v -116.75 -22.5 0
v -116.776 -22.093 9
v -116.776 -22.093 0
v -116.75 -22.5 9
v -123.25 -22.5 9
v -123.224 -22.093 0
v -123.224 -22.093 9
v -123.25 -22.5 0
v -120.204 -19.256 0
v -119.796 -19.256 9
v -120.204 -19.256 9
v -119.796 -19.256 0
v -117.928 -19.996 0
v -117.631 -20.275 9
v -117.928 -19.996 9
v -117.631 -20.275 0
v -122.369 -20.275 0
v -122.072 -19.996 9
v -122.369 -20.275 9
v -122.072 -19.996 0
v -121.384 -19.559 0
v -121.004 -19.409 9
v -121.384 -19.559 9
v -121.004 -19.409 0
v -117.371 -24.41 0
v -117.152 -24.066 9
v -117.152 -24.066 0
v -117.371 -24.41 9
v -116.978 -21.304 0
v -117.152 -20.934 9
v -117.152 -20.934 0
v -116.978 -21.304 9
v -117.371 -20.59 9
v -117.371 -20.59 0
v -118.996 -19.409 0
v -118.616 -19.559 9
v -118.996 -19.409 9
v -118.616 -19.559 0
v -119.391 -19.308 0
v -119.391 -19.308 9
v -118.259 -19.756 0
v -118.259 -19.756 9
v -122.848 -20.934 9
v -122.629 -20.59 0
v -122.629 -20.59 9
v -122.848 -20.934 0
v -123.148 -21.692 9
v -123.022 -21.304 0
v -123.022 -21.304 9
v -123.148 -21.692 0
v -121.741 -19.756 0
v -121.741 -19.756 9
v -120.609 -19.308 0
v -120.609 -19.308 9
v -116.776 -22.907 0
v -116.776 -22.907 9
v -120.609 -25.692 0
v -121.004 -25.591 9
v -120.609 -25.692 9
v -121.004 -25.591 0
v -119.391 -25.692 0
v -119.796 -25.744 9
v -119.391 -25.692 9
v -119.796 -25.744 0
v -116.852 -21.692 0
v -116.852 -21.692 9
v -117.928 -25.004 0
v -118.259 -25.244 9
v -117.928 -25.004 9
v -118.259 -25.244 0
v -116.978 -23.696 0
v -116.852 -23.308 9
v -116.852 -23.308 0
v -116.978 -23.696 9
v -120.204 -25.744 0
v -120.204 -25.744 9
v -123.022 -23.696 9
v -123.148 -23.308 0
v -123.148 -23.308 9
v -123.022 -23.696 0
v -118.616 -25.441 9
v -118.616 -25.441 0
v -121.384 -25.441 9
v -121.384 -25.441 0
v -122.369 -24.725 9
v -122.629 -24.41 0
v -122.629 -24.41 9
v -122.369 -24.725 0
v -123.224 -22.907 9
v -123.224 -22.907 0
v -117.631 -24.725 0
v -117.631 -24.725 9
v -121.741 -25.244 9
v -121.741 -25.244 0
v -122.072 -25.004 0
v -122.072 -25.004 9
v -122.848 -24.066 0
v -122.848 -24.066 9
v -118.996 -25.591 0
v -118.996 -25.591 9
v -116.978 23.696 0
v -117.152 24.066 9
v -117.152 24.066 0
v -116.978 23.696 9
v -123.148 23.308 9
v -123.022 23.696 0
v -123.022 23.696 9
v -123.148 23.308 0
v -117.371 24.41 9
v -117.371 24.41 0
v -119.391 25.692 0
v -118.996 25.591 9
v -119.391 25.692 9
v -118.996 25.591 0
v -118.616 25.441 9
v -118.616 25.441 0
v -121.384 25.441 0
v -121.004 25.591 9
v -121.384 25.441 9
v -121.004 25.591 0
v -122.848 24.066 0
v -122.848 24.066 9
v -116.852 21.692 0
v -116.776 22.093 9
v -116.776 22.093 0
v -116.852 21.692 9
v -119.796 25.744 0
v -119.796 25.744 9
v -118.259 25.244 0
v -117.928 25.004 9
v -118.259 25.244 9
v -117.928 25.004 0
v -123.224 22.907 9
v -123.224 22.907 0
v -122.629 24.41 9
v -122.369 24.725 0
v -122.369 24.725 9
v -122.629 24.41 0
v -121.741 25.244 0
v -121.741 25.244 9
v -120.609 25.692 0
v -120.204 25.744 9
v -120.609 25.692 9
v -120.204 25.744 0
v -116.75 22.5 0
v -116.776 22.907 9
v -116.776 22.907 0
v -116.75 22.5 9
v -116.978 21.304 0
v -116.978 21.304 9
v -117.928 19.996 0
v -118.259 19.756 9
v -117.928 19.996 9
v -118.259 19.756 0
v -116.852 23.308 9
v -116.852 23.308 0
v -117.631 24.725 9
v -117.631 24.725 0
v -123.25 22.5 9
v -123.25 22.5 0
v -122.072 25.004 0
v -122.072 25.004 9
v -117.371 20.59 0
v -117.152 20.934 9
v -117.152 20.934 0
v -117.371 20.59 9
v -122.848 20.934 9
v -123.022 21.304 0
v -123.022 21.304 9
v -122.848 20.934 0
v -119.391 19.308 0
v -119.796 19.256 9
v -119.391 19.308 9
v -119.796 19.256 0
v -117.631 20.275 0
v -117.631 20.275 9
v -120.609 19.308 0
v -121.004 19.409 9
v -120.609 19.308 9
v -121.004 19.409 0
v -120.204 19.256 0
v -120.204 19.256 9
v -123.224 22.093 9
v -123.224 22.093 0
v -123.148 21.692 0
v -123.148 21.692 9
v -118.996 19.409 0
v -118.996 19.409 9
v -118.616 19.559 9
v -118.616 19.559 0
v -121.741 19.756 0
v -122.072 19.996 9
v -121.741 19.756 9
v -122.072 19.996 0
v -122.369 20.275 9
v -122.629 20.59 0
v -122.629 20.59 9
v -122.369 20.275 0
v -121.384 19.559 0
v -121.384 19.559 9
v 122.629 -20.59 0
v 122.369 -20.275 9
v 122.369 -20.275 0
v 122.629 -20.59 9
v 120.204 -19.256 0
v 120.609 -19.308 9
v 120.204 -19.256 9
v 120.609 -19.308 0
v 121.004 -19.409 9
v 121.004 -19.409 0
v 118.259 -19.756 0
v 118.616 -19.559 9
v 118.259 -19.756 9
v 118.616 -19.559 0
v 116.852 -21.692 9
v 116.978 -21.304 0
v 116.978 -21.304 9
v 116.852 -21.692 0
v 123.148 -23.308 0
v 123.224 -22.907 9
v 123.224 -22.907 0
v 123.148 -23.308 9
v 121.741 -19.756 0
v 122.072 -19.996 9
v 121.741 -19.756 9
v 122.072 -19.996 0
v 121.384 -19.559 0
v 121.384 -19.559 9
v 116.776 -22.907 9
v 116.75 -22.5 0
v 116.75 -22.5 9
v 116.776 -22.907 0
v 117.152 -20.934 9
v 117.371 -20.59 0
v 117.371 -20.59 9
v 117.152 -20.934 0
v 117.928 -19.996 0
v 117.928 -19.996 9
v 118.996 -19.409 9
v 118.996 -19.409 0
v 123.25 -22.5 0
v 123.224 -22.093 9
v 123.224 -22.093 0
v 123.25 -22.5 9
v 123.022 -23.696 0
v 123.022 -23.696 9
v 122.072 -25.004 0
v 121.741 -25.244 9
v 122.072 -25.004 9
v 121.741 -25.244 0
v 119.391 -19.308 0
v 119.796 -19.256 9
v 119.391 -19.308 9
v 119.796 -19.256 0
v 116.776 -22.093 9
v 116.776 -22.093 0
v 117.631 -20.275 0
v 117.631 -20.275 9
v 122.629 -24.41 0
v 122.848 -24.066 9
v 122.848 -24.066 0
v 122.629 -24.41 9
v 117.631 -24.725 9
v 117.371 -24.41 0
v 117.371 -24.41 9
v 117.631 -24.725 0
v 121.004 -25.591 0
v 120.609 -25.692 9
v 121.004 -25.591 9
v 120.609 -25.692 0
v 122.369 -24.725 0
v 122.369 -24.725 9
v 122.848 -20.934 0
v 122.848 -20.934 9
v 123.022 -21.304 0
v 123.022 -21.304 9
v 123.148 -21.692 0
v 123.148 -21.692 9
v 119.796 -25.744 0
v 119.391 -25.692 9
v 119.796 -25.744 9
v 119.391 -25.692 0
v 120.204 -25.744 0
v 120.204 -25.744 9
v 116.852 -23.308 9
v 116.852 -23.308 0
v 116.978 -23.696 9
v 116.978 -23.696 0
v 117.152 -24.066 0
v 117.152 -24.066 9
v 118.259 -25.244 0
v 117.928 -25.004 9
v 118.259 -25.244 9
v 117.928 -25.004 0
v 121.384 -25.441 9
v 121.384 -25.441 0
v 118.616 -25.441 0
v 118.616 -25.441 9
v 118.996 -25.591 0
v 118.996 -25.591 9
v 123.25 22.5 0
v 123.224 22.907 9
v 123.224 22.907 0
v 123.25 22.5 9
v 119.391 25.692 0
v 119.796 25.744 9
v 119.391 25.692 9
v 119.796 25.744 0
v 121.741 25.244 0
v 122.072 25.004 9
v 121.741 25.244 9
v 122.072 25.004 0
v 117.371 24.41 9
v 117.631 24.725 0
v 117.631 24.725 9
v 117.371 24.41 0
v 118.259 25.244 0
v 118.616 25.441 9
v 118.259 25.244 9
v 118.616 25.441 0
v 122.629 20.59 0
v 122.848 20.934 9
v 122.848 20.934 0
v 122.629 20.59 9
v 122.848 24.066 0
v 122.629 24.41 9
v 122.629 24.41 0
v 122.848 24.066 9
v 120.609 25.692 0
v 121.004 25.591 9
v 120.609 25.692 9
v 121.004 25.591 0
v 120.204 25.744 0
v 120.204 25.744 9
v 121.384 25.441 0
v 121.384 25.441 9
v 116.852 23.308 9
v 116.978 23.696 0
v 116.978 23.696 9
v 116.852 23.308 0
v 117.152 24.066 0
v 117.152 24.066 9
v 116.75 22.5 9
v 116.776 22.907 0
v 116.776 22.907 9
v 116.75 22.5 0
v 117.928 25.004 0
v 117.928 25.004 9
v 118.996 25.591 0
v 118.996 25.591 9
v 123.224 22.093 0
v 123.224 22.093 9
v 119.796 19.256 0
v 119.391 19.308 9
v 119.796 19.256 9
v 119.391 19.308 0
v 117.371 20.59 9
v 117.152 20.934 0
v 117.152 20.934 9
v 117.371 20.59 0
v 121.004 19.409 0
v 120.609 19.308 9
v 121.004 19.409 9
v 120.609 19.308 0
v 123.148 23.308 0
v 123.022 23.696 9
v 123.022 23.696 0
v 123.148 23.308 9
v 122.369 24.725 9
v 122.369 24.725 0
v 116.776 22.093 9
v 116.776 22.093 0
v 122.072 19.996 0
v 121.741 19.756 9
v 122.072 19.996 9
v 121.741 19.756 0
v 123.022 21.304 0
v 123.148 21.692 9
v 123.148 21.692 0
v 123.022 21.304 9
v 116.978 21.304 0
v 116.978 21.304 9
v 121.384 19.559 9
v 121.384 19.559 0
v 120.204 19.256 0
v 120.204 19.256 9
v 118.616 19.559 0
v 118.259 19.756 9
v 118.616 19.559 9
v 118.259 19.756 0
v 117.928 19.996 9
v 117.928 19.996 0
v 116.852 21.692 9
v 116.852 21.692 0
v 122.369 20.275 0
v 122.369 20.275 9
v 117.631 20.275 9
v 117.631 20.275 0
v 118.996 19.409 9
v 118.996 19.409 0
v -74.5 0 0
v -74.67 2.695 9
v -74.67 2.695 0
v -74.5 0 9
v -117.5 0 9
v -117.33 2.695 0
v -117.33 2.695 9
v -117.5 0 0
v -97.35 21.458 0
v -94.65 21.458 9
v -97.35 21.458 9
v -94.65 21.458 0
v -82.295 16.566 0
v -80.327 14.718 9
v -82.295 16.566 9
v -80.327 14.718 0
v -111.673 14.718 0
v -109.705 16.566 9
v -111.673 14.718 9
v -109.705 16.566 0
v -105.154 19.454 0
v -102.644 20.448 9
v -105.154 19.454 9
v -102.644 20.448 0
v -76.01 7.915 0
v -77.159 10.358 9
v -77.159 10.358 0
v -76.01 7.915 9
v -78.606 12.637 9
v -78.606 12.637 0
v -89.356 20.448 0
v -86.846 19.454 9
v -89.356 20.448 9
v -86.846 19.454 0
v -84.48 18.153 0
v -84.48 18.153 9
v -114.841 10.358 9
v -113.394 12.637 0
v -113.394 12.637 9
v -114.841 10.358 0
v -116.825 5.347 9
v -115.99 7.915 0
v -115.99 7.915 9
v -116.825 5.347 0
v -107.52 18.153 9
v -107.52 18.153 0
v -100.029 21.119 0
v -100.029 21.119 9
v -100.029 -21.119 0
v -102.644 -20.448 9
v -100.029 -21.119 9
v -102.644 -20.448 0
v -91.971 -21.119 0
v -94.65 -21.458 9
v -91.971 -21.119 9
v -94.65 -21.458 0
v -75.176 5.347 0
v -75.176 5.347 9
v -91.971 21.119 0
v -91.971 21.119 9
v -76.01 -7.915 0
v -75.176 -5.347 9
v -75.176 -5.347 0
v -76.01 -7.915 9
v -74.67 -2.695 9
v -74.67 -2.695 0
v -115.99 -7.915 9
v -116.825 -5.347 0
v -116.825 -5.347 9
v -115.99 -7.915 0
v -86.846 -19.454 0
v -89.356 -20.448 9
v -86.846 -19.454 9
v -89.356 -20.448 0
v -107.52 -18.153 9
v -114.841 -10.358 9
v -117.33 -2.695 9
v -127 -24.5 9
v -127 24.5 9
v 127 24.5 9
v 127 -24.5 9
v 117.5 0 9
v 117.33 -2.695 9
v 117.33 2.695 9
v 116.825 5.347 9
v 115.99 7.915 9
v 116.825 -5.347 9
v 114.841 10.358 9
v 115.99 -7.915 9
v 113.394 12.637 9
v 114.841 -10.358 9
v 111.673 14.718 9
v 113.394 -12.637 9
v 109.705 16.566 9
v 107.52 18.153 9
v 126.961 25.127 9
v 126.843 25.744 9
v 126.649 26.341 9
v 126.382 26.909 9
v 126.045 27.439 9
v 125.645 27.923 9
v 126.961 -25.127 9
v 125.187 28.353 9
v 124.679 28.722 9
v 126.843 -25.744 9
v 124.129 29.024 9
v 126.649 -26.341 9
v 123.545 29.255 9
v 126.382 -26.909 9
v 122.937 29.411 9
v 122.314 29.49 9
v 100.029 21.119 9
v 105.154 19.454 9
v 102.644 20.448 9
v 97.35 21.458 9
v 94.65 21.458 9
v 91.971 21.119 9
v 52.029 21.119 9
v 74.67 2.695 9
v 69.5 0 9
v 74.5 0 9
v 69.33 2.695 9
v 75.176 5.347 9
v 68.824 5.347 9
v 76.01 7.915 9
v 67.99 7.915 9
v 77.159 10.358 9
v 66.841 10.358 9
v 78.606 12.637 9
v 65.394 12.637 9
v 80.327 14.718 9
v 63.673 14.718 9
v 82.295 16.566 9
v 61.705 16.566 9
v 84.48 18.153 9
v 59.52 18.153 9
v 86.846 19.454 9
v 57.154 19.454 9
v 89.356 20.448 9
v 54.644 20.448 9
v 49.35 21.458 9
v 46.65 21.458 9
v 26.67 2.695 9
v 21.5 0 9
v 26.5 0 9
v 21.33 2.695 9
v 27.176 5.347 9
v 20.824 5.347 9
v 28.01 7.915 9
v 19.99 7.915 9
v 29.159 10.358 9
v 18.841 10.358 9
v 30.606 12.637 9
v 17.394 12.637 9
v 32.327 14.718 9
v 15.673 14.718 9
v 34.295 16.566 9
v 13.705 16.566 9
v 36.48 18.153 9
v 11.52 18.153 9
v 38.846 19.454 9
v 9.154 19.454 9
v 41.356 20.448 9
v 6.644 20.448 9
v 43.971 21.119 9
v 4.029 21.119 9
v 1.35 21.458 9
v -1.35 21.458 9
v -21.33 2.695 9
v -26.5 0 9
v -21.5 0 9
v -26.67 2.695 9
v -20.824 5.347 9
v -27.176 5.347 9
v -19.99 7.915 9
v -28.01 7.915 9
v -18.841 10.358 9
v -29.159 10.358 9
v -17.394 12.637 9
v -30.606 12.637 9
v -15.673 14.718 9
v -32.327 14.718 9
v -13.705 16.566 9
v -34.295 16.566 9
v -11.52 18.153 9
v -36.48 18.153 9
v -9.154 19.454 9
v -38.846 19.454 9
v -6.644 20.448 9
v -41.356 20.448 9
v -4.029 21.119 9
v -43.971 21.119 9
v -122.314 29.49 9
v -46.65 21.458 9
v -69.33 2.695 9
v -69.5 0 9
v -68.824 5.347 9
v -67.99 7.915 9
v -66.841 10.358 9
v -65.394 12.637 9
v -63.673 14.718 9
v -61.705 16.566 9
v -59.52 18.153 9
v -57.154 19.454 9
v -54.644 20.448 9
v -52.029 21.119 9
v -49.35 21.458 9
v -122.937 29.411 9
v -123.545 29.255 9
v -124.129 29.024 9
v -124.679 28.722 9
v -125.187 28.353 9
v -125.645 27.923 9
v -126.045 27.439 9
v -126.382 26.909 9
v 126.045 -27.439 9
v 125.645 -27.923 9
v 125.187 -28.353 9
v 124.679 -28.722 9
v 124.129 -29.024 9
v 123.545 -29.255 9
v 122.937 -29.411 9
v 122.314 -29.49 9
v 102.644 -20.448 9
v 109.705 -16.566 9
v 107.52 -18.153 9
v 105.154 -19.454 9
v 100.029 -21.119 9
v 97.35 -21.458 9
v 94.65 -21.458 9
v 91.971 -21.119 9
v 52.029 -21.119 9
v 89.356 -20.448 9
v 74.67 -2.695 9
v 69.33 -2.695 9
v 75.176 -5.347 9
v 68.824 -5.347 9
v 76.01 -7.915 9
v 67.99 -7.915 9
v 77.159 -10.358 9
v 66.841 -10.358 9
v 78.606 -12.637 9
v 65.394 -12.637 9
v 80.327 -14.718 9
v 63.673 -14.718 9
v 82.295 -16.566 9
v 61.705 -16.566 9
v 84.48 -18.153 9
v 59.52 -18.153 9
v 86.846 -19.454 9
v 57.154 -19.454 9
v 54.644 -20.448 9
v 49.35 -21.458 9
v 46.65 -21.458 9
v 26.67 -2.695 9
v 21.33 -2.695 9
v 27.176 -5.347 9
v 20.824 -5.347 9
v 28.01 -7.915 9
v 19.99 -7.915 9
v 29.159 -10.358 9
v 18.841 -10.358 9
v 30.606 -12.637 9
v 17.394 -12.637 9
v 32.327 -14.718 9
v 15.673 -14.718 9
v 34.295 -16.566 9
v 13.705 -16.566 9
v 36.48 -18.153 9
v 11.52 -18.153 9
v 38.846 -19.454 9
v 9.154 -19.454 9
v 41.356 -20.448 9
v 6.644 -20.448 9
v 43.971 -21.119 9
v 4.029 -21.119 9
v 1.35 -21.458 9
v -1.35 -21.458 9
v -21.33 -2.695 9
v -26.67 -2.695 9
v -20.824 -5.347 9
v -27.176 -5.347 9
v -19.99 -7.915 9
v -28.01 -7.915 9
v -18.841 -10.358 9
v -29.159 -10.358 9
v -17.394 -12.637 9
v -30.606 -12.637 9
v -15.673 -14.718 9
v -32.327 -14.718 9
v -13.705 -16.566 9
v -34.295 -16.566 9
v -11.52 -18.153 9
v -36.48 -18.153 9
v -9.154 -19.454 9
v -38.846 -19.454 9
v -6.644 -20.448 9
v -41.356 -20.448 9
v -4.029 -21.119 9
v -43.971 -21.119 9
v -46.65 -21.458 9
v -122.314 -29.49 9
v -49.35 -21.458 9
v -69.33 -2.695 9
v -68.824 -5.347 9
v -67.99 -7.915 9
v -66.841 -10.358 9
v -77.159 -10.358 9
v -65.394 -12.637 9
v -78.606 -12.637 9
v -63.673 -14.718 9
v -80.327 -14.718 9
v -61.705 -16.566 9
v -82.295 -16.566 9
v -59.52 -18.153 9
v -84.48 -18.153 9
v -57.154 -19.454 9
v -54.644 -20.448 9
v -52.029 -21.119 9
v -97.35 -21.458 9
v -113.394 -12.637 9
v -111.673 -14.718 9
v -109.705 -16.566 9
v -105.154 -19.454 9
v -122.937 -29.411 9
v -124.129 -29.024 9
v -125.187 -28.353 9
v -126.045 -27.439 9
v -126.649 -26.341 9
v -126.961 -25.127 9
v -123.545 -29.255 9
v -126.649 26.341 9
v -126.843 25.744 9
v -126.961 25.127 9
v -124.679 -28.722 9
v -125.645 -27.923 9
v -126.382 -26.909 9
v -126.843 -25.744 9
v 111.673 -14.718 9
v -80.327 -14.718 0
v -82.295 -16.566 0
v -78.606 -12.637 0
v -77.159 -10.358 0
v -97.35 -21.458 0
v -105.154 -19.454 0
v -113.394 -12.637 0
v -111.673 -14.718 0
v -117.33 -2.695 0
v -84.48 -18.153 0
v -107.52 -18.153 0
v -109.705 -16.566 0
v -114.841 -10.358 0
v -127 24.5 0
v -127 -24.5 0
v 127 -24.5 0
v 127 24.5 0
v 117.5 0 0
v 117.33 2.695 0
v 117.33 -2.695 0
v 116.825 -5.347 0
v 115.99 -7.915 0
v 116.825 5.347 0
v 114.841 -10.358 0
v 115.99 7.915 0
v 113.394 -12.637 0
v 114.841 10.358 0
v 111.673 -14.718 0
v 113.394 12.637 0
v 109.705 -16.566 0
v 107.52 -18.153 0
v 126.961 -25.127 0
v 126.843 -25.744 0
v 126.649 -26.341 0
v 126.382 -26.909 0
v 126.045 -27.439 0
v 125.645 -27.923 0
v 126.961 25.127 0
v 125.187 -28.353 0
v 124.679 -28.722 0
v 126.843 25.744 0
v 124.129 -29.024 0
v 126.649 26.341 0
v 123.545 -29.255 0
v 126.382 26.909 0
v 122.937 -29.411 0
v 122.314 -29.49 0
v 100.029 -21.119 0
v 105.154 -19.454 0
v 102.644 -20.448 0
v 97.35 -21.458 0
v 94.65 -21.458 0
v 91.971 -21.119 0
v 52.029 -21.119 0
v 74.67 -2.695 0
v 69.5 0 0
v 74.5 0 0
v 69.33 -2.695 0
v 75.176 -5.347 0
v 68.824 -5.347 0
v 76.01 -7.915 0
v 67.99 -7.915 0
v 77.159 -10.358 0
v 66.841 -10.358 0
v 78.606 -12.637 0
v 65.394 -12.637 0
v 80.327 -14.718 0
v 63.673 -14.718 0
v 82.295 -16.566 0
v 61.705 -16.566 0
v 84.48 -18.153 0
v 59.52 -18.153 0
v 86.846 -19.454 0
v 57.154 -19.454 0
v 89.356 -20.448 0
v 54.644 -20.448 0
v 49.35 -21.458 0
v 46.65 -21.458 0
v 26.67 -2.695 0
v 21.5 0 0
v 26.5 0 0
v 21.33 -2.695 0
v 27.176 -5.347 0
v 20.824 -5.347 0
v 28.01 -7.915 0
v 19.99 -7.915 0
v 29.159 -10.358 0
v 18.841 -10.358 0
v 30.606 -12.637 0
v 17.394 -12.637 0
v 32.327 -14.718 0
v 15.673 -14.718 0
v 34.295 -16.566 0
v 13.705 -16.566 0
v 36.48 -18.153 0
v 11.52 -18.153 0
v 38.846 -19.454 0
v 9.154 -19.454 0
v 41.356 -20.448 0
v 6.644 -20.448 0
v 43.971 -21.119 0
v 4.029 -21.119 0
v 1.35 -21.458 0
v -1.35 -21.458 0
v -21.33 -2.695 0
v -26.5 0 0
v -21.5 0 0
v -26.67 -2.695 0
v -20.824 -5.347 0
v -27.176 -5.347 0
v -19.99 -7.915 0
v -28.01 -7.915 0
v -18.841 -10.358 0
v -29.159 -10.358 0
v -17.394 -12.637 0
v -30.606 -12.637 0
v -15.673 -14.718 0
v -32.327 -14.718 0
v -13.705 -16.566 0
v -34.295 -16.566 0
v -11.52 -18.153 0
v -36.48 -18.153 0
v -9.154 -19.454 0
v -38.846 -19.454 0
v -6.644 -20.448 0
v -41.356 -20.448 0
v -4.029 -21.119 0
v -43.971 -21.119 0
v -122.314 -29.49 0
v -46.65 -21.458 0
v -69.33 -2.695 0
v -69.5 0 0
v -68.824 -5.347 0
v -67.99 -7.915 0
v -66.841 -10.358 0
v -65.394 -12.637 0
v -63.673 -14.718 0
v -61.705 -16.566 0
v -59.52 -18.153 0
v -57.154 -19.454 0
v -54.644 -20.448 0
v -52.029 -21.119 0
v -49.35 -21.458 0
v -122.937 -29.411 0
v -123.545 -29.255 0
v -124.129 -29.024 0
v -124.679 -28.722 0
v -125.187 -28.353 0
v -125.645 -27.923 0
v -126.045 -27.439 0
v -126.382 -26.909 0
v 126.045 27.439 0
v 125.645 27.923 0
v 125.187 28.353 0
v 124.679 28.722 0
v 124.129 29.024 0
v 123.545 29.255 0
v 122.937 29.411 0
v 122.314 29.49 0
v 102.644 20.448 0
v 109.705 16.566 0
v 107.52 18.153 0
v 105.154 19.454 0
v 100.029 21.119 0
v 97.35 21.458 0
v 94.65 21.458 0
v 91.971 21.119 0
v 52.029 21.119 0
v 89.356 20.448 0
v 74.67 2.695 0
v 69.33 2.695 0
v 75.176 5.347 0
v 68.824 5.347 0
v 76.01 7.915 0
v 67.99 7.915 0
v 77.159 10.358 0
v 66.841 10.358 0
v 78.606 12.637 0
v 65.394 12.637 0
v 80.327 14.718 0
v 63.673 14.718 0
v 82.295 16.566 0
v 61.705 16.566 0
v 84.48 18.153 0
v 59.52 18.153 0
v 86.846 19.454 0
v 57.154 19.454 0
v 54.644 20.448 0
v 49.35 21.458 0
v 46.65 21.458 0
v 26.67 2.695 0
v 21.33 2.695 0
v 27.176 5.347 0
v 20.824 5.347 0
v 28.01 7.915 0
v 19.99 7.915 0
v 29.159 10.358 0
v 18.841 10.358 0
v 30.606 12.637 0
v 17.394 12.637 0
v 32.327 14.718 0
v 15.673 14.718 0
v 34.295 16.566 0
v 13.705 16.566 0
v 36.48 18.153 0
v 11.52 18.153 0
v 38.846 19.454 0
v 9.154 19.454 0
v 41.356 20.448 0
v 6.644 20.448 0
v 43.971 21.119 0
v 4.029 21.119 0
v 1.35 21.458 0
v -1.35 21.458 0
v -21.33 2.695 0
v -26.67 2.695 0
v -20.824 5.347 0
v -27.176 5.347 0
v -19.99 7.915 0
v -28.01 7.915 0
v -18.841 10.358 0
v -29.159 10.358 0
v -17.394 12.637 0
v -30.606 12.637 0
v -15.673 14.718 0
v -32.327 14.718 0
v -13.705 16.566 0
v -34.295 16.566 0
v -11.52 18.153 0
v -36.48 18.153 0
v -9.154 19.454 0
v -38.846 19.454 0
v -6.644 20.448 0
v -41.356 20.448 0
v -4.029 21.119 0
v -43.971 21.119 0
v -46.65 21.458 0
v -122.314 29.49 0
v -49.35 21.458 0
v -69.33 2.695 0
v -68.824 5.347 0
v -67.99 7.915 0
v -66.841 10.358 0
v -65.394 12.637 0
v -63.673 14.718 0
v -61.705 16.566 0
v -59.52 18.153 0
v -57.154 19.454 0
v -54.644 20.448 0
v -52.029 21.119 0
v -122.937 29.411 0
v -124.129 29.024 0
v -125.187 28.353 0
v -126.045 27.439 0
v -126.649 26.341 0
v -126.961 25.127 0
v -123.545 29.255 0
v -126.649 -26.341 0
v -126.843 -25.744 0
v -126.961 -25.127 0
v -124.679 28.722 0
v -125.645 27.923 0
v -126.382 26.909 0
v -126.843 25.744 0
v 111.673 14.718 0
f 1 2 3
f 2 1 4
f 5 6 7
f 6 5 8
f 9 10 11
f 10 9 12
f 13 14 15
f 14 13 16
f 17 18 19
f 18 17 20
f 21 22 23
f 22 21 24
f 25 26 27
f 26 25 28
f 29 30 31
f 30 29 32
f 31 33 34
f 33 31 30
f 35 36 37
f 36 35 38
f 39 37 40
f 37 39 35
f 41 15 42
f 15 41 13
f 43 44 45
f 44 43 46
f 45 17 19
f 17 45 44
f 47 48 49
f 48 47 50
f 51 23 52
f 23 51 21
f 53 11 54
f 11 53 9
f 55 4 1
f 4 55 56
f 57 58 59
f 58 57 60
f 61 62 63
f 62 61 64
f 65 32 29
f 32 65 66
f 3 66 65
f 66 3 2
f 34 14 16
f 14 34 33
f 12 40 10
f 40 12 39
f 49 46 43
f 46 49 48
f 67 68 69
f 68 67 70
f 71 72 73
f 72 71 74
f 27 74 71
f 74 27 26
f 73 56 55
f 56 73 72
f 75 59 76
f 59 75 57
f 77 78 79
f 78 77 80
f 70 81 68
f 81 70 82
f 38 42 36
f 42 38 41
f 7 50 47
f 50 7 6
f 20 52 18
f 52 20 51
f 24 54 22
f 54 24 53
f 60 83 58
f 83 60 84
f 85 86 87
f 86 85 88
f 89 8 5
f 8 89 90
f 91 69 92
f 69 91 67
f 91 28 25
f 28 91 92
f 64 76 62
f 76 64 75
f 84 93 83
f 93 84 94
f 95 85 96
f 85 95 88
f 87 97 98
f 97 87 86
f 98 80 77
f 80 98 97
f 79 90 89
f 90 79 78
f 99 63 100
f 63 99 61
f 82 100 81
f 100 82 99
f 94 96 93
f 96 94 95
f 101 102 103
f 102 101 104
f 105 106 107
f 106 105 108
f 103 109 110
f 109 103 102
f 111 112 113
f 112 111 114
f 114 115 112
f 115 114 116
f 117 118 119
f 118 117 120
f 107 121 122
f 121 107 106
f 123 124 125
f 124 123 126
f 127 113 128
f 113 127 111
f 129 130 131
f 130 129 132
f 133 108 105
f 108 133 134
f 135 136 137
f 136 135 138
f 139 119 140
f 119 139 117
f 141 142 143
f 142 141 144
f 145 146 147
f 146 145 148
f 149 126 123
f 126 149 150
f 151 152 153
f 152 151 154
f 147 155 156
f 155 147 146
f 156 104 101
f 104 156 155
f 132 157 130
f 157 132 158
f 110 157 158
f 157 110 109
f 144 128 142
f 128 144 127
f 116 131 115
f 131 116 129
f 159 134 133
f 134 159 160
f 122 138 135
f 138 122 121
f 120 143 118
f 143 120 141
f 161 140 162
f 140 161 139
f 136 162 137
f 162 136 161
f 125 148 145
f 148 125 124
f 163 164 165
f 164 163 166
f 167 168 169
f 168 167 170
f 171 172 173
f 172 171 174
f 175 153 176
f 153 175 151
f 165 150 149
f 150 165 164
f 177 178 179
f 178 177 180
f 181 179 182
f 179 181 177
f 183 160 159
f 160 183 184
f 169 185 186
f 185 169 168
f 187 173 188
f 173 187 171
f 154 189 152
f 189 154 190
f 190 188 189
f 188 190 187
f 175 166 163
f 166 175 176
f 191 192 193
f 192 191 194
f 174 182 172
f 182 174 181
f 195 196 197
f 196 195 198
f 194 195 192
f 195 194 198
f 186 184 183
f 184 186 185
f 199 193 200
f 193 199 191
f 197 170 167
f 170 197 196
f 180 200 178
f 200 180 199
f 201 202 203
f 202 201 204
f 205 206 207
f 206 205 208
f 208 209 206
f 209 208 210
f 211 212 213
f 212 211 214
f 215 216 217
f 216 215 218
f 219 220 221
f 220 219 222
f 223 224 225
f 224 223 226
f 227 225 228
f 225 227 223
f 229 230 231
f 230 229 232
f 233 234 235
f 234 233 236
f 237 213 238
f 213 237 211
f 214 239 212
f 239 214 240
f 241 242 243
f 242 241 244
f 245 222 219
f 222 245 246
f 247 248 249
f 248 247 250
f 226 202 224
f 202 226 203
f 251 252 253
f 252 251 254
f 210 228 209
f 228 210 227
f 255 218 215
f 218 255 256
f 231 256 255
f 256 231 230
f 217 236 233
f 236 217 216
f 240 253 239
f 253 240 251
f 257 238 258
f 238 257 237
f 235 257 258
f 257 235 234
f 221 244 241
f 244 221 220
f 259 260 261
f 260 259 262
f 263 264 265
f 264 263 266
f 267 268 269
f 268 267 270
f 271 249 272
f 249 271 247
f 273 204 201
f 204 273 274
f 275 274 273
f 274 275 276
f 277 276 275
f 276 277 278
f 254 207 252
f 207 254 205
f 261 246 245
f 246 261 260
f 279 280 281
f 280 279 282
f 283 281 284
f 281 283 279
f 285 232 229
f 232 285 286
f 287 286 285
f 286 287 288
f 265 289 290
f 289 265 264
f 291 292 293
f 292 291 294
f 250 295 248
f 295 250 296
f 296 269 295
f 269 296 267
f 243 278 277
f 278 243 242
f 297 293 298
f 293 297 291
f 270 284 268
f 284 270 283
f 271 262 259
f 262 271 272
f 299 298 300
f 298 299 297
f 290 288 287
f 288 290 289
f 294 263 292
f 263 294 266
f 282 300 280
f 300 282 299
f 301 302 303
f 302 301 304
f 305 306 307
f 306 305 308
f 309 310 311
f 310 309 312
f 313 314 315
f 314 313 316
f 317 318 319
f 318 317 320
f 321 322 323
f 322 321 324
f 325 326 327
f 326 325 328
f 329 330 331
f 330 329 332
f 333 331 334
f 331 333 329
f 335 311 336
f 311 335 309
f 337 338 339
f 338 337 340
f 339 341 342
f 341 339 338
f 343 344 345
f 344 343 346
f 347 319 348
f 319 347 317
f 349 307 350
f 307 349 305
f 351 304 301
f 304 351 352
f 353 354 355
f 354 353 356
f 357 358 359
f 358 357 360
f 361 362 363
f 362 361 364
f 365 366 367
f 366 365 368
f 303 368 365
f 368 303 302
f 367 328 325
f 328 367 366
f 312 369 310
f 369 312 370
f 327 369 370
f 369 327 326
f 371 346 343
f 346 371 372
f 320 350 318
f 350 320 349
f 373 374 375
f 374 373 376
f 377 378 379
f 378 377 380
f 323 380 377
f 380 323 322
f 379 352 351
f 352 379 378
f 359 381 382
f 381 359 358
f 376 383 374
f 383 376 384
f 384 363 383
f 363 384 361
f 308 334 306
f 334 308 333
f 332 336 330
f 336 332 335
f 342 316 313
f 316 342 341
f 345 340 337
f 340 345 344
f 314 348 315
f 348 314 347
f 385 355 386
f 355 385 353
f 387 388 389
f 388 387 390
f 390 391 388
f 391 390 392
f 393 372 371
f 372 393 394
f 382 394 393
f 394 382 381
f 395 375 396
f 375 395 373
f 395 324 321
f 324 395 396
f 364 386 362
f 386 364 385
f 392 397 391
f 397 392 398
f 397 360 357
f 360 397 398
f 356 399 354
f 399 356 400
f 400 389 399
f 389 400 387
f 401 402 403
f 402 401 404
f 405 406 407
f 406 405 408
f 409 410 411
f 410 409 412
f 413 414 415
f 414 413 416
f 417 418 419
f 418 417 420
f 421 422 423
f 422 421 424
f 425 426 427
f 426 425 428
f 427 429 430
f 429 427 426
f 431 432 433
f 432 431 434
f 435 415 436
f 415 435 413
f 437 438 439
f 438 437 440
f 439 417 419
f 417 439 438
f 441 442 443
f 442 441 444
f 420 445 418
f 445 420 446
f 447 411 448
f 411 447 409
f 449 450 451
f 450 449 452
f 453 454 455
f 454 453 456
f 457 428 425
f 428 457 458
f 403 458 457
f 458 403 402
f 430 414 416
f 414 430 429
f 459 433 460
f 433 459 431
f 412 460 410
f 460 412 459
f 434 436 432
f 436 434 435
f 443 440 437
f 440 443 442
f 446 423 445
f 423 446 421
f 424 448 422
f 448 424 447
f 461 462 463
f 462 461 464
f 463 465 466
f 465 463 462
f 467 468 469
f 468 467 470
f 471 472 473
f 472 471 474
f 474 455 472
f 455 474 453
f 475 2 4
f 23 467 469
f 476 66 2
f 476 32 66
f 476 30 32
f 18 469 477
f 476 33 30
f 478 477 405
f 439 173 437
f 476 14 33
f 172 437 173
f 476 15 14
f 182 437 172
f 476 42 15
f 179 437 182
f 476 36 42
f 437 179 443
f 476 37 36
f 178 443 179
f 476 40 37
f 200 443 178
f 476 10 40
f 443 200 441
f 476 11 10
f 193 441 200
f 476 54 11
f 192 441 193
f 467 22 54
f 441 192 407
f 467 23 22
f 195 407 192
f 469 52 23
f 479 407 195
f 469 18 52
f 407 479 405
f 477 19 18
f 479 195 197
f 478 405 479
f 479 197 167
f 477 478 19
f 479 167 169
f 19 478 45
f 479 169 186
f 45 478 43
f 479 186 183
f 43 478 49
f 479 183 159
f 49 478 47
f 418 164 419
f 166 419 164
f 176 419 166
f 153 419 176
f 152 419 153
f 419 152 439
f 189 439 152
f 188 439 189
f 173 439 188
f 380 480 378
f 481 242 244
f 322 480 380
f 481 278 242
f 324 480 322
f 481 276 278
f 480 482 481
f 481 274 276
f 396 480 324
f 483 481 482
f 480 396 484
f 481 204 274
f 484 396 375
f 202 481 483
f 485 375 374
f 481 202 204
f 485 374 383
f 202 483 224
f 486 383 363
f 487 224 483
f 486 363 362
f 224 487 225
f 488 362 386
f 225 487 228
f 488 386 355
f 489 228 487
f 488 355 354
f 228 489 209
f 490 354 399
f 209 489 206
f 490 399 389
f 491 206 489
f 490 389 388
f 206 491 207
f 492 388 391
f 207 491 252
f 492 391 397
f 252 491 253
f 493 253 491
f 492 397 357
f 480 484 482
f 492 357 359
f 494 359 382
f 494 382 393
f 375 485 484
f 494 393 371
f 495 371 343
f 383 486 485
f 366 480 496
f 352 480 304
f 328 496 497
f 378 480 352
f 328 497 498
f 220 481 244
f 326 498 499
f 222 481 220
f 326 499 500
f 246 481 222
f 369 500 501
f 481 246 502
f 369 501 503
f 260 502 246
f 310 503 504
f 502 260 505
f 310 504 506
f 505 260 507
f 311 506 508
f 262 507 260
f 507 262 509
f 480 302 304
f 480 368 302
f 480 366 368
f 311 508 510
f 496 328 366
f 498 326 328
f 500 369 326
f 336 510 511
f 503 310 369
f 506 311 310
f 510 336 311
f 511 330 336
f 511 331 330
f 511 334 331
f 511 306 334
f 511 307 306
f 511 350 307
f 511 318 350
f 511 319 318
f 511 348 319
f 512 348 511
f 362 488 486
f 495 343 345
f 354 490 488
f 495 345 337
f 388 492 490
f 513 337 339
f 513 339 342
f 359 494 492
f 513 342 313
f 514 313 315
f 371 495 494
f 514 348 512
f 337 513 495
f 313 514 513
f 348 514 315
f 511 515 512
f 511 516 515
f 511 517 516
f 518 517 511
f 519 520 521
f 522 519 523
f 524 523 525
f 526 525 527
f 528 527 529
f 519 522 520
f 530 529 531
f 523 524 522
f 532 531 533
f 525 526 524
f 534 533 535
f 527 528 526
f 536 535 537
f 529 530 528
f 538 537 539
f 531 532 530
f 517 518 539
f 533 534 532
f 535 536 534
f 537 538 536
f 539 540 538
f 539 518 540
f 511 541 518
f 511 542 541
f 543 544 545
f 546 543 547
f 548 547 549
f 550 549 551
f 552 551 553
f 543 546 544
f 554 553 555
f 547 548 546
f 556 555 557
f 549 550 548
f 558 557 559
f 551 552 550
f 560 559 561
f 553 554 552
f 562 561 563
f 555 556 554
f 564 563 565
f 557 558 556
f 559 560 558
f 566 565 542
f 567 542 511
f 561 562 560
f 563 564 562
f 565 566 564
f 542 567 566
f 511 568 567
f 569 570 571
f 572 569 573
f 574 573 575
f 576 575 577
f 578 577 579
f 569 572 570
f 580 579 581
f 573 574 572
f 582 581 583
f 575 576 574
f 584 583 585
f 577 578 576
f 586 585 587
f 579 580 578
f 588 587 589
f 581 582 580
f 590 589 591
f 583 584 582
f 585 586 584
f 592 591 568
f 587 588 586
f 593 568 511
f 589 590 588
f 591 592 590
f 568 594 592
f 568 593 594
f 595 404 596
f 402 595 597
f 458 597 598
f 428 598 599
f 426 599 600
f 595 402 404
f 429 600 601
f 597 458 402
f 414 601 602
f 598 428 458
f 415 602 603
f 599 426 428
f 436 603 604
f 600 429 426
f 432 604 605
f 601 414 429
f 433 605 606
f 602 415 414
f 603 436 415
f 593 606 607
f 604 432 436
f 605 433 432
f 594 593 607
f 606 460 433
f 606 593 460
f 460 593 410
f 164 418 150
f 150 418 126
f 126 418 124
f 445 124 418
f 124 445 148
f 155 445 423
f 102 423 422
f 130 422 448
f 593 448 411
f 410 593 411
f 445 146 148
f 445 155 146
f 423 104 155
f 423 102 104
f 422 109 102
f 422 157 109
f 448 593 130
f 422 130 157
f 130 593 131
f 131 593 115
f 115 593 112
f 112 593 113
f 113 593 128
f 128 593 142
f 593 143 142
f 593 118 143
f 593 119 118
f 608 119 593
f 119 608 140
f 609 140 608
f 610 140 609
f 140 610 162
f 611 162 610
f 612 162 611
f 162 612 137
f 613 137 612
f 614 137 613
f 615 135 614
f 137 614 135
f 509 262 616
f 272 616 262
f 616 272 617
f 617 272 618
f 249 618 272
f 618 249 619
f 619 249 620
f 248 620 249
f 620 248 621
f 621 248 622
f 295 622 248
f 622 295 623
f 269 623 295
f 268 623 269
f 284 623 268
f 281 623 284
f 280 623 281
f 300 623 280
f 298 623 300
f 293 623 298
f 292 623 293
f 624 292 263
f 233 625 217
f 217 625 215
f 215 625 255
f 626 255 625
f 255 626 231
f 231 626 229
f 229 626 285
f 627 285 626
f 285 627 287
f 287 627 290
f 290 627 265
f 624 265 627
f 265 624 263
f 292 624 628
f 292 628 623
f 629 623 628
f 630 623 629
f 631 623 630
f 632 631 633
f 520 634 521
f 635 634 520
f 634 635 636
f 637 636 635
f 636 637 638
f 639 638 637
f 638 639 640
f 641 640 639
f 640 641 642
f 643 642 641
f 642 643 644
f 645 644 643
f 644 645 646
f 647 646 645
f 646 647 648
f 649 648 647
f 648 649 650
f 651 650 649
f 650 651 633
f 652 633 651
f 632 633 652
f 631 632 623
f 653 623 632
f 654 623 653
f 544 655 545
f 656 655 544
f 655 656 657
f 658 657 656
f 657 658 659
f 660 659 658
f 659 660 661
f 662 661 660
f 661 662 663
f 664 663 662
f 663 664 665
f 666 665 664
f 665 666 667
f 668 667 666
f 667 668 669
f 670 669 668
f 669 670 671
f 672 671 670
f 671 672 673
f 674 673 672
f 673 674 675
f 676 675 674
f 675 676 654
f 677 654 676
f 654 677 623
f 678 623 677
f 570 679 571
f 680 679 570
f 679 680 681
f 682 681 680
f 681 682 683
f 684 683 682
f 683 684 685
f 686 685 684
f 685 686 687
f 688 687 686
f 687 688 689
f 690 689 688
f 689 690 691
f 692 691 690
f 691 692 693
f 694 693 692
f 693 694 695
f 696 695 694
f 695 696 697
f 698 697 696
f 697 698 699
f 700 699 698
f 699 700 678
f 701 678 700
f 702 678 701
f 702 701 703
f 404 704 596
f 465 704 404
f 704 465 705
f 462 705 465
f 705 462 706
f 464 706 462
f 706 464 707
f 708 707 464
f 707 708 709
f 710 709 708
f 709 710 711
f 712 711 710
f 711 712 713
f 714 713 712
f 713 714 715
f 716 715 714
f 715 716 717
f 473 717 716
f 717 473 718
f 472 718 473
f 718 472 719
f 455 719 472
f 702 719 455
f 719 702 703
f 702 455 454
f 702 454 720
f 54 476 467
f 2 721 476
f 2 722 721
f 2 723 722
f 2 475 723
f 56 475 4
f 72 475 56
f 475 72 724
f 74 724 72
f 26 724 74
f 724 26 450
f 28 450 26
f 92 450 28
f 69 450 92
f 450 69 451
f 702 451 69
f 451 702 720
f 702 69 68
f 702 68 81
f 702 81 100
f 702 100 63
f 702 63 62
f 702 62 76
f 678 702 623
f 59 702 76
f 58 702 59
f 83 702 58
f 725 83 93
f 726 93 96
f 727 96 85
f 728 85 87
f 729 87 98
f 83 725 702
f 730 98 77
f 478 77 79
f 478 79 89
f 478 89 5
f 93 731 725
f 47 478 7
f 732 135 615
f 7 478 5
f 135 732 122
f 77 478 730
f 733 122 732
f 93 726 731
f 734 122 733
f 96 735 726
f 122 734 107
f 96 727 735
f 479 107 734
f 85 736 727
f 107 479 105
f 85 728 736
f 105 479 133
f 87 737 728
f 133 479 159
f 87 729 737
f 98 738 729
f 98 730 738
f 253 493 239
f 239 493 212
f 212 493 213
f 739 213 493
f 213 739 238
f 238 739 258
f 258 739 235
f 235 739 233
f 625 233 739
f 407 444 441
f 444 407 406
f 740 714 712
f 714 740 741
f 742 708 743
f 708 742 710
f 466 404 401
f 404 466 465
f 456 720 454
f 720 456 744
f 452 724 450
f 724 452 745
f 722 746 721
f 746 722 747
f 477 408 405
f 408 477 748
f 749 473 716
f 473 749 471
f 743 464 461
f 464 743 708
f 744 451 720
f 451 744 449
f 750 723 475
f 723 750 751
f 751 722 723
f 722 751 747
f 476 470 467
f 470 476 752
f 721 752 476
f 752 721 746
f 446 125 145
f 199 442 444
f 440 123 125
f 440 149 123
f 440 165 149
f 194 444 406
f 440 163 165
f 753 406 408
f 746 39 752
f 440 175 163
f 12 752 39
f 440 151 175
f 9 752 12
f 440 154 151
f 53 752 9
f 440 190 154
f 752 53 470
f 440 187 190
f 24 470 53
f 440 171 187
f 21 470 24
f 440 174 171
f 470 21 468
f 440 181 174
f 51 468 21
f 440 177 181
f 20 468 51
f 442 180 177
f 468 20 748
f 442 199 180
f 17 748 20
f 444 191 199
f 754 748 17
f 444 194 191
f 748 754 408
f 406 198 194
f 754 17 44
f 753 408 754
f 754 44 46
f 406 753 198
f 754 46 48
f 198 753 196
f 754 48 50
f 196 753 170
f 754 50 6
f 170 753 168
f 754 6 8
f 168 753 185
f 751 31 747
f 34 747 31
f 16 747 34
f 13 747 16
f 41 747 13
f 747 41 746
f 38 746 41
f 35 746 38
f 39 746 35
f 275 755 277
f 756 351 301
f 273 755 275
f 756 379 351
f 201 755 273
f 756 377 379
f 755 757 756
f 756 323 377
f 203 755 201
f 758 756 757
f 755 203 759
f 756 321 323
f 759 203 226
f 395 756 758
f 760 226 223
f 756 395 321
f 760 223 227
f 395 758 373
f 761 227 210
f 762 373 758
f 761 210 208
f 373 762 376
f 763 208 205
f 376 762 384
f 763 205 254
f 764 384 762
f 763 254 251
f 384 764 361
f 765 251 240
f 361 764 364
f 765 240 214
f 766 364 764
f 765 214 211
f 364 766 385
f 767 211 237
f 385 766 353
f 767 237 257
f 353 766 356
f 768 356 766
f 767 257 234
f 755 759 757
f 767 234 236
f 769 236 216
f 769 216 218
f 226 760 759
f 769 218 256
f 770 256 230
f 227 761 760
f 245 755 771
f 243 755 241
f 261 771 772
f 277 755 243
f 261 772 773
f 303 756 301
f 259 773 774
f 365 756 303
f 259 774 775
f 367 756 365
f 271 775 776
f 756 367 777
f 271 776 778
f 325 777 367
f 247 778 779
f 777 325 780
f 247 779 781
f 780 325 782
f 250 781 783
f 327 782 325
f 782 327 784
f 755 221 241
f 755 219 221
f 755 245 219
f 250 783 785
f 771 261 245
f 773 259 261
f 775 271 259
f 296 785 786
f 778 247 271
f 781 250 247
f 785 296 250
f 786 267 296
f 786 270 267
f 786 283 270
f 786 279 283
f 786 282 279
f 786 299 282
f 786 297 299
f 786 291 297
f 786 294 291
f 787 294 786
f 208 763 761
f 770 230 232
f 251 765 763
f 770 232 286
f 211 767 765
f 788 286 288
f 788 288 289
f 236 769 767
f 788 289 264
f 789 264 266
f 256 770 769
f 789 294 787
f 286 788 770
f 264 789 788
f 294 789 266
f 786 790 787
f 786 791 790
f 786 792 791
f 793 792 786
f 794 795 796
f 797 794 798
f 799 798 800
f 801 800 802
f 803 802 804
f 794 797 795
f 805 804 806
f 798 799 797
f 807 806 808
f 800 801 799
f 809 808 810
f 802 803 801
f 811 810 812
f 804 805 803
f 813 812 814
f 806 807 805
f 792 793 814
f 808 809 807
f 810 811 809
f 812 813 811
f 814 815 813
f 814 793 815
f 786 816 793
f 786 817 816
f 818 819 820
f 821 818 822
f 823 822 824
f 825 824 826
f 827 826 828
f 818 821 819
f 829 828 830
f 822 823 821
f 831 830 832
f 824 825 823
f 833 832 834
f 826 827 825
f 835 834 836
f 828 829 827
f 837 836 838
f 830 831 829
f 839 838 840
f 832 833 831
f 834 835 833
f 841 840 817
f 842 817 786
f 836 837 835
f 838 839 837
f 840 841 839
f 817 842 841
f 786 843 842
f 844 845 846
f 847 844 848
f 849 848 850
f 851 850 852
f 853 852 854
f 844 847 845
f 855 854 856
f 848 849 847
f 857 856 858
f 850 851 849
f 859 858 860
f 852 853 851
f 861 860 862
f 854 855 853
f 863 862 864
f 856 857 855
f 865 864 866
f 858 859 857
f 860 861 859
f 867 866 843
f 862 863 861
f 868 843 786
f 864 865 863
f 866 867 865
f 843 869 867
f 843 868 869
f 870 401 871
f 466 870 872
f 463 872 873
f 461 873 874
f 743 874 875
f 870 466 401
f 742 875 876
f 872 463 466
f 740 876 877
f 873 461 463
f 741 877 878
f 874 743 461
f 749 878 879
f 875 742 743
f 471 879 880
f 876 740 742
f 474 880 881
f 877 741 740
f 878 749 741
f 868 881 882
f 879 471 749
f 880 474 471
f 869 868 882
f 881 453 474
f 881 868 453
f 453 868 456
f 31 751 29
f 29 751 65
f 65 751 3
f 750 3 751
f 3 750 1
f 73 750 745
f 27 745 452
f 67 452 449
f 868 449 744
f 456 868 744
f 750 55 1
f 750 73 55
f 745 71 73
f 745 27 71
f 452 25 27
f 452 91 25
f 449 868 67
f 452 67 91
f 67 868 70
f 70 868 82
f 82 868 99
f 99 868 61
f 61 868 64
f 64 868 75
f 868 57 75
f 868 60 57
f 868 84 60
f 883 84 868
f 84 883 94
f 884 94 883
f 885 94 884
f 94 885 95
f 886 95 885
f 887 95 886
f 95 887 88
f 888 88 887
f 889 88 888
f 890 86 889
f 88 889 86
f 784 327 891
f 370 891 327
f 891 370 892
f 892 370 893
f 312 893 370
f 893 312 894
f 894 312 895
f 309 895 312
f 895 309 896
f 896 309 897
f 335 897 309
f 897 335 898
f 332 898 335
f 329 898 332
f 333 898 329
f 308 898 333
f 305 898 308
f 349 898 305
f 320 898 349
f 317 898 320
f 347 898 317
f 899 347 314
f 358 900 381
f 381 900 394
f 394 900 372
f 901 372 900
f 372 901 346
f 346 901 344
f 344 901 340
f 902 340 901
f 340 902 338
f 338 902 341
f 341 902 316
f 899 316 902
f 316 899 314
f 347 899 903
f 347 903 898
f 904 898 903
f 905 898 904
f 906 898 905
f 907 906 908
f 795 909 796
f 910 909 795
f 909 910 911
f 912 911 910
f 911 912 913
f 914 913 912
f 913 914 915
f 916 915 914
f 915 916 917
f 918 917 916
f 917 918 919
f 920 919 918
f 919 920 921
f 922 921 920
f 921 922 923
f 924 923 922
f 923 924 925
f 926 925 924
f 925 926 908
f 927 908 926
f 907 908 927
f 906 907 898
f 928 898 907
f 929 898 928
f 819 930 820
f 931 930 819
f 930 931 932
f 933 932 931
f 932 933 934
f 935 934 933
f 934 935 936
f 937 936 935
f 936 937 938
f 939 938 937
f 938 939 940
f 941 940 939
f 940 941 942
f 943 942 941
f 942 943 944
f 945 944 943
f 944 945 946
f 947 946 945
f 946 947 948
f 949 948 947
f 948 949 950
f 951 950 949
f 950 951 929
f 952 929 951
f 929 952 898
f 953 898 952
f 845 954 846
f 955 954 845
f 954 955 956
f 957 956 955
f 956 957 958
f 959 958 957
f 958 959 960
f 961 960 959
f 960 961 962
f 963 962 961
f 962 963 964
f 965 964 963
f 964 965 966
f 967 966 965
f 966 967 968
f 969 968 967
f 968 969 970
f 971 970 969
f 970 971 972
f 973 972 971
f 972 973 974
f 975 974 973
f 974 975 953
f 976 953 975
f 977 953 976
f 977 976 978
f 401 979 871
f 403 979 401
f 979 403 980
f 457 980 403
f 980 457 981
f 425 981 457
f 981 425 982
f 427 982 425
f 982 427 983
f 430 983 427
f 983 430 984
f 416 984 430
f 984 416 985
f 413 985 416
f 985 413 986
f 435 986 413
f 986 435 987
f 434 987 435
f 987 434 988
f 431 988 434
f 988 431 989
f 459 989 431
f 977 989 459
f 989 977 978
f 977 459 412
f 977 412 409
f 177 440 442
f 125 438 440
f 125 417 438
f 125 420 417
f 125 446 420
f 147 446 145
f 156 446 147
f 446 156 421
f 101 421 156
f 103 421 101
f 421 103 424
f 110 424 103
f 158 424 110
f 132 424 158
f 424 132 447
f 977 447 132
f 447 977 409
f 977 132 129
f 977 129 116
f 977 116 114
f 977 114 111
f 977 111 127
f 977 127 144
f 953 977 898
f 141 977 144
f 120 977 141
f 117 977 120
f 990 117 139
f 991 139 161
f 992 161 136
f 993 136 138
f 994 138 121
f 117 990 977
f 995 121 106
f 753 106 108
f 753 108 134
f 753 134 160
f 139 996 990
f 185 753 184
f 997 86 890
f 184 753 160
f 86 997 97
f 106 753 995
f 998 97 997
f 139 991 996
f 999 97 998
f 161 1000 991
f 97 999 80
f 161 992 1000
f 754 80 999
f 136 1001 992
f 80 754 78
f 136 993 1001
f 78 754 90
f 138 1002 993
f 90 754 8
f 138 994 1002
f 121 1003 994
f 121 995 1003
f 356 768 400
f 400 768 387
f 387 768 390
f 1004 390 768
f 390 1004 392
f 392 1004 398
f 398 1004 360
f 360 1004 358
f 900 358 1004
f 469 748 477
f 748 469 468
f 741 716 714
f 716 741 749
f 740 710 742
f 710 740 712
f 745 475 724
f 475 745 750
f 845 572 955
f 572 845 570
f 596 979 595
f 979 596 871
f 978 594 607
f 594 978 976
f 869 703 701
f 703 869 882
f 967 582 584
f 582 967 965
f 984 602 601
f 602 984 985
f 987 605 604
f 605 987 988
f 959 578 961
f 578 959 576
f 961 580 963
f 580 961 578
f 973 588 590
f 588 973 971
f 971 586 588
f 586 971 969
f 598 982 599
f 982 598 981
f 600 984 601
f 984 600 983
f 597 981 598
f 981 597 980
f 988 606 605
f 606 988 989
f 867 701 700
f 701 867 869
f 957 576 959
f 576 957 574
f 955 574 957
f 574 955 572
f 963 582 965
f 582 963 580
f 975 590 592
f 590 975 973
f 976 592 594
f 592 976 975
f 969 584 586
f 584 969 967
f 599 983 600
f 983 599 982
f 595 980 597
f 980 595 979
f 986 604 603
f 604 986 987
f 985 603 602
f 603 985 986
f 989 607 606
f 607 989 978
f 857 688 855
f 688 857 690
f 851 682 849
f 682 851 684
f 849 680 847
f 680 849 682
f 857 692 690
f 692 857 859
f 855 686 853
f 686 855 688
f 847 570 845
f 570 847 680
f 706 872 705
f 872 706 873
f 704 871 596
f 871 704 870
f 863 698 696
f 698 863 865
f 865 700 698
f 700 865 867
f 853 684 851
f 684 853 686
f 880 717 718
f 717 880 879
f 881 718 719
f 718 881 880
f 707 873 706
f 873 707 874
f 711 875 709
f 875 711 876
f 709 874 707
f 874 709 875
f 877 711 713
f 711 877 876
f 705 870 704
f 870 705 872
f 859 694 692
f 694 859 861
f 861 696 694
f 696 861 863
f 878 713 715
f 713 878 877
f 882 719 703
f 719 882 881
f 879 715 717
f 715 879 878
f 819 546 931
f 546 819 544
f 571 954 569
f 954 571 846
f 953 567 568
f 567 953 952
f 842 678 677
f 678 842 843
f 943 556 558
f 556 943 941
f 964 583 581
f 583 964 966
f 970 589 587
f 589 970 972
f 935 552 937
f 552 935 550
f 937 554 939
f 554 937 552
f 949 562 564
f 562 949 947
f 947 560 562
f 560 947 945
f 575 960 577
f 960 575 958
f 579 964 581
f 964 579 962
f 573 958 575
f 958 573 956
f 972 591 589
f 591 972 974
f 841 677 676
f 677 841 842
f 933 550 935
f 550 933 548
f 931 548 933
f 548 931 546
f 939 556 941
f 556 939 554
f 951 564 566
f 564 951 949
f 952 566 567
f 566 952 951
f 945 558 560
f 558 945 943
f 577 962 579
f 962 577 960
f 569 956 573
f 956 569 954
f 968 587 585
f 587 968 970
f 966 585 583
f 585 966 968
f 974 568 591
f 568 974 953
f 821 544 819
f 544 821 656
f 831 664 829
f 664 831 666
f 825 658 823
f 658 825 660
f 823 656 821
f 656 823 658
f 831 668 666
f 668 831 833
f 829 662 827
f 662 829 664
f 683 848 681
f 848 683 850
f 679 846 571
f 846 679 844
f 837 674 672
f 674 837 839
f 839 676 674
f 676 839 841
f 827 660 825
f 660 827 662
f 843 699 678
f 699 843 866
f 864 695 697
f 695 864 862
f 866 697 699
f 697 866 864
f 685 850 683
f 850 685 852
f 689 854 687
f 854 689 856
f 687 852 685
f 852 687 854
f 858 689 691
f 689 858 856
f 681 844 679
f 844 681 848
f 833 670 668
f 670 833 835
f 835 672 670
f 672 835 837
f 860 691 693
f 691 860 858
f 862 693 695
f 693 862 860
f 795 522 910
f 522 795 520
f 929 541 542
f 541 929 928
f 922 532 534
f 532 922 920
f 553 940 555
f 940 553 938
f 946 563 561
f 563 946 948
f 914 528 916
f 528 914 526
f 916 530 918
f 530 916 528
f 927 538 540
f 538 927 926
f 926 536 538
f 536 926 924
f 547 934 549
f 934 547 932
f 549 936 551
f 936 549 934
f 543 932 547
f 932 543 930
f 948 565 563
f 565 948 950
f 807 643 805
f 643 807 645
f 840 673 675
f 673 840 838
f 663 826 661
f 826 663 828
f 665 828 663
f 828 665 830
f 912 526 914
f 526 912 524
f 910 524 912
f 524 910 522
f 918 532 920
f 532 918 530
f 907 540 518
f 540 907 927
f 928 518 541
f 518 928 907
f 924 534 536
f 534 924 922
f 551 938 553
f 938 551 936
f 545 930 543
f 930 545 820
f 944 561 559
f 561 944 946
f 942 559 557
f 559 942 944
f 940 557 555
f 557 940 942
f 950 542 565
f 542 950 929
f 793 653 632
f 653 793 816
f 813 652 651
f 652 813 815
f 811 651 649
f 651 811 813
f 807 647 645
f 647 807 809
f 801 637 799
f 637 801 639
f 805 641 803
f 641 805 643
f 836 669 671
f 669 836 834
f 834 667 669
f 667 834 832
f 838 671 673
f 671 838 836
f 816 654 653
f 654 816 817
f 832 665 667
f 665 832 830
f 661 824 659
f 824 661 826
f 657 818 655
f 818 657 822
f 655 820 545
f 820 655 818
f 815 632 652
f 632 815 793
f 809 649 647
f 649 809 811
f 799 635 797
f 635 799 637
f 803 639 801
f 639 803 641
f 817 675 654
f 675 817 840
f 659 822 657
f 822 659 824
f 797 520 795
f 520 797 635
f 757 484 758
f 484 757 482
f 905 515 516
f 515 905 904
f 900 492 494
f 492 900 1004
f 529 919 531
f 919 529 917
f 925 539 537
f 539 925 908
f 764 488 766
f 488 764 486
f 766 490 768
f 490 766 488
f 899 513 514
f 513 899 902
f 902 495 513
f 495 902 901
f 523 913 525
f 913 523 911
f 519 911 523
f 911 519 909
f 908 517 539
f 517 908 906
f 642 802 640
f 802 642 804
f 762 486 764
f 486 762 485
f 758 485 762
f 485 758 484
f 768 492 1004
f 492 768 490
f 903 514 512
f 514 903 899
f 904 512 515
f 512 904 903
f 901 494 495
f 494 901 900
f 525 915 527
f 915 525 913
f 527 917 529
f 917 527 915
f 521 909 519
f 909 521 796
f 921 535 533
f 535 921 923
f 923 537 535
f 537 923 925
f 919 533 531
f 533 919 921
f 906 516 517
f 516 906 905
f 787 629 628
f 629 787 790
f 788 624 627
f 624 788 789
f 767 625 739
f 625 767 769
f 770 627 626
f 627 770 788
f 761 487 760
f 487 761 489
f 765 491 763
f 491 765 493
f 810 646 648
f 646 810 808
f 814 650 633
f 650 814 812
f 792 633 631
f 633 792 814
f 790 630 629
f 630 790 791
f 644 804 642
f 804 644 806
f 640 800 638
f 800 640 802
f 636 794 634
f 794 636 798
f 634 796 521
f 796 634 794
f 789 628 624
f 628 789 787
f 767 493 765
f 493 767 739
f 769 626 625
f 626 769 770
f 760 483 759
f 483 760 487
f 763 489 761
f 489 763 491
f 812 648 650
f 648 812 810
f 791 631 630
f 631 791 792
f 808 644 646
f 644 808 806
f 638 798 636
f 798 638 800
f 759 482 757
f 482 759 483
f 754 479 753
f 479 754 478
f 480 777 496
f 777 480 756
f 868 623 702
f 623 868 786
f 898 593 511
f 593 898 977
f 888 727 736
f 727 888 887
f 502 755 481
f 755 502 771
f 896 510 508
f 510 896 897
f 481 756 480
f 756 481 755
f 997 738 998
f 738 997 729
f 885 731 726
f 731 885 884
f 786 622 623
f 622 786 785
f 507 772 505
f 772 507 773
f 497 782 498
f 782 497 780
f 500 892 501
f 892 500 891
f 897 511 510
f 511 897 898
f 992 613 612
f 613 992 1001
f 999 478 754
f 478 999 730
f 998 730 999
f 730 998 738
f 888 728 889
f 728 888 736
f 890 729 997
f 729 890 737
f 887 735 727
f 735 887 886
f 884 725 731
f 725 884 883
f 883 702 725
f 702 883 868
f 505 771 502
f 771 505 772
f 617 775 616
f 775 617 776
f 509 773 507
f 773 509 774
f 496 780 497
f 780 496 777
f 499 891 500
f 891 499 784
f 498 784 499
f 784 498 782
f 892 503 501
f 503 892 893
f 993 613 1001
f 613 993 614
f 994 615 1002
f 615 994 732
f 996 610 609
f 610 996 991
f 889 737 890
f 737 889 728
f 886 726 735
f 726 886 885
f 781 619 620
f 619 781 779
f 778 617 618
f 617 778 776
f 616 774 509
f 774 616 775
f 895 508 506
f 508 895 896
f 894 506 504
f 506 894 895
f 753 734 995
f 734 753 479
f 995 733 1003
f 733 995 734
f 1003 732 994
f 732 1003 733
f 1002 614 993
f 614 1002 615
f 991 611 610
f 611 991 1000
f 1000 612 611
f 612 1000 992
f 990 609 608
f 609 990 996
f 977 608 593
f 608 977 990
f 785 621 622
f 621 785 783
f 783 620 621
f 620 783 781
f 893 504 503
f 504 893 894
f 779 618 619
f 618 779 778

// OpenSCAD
$fn = 50;


difference() {
	union() {
		hull() {
			translate(v = [-122.0000000000, 24.5000000000, 0]) {
				cylinder(h = 9, r = 5);
			}
			translate(v = [122.0000000000, 24.5000000000, 0]) {
				cylinder(h = 9, r = 5);
			}
			translate(v = [-122.0000000000, -24.5000000000, 0]) {
				cylinder(h = 9, r = 5);
			}
			translate(v = [122.0000000000, -24.5000000000, 0]) {
				cylinder(h = 9, r = 5);
			}
		}
	}
	union() {
		#translate(v = [-120.0000000000, -22.5000000000, -100.0000000000]) {
			cylinder(h = 200, r = 3.2500000000);
		}
		#translate(v = [-120.0000000000, 22.5000000000, -100.0000000000]) {
			cylinder(h = 200, r = 3.2500000000);
		}
		#translate(v = [120.0000000000, -22.5000000000, -100.0000000000]) {
			cylinder(h = 200, r = 3.2500000000);
		}
		#translate(v = [120.0000000000, 22.5000000000, -100.0000000000]) {
			cylinder(h = 200, r = 3.2500000000);
		}
		#translate(v = [-96.0000000000, 0, 0]) {
			cylinder(h = 9, r = 21.5000000000);
		}
		#translate(v = [-48.0000000000, 0, 0]) {
			cylinder(h = 9, r = 21.5000000000);
		}
		#cylinder(h = 9, r = 21.5000000000);
		#translate(v = [48.0000000000, 0, 0]) {
			cylinder(h = 9, r = 21.5000000000);
		}
		#translate(v = [96.0000000000, 0, 0]) {
			cylinder(h = 9, r = 21.5000000000);
		}
	}
}
